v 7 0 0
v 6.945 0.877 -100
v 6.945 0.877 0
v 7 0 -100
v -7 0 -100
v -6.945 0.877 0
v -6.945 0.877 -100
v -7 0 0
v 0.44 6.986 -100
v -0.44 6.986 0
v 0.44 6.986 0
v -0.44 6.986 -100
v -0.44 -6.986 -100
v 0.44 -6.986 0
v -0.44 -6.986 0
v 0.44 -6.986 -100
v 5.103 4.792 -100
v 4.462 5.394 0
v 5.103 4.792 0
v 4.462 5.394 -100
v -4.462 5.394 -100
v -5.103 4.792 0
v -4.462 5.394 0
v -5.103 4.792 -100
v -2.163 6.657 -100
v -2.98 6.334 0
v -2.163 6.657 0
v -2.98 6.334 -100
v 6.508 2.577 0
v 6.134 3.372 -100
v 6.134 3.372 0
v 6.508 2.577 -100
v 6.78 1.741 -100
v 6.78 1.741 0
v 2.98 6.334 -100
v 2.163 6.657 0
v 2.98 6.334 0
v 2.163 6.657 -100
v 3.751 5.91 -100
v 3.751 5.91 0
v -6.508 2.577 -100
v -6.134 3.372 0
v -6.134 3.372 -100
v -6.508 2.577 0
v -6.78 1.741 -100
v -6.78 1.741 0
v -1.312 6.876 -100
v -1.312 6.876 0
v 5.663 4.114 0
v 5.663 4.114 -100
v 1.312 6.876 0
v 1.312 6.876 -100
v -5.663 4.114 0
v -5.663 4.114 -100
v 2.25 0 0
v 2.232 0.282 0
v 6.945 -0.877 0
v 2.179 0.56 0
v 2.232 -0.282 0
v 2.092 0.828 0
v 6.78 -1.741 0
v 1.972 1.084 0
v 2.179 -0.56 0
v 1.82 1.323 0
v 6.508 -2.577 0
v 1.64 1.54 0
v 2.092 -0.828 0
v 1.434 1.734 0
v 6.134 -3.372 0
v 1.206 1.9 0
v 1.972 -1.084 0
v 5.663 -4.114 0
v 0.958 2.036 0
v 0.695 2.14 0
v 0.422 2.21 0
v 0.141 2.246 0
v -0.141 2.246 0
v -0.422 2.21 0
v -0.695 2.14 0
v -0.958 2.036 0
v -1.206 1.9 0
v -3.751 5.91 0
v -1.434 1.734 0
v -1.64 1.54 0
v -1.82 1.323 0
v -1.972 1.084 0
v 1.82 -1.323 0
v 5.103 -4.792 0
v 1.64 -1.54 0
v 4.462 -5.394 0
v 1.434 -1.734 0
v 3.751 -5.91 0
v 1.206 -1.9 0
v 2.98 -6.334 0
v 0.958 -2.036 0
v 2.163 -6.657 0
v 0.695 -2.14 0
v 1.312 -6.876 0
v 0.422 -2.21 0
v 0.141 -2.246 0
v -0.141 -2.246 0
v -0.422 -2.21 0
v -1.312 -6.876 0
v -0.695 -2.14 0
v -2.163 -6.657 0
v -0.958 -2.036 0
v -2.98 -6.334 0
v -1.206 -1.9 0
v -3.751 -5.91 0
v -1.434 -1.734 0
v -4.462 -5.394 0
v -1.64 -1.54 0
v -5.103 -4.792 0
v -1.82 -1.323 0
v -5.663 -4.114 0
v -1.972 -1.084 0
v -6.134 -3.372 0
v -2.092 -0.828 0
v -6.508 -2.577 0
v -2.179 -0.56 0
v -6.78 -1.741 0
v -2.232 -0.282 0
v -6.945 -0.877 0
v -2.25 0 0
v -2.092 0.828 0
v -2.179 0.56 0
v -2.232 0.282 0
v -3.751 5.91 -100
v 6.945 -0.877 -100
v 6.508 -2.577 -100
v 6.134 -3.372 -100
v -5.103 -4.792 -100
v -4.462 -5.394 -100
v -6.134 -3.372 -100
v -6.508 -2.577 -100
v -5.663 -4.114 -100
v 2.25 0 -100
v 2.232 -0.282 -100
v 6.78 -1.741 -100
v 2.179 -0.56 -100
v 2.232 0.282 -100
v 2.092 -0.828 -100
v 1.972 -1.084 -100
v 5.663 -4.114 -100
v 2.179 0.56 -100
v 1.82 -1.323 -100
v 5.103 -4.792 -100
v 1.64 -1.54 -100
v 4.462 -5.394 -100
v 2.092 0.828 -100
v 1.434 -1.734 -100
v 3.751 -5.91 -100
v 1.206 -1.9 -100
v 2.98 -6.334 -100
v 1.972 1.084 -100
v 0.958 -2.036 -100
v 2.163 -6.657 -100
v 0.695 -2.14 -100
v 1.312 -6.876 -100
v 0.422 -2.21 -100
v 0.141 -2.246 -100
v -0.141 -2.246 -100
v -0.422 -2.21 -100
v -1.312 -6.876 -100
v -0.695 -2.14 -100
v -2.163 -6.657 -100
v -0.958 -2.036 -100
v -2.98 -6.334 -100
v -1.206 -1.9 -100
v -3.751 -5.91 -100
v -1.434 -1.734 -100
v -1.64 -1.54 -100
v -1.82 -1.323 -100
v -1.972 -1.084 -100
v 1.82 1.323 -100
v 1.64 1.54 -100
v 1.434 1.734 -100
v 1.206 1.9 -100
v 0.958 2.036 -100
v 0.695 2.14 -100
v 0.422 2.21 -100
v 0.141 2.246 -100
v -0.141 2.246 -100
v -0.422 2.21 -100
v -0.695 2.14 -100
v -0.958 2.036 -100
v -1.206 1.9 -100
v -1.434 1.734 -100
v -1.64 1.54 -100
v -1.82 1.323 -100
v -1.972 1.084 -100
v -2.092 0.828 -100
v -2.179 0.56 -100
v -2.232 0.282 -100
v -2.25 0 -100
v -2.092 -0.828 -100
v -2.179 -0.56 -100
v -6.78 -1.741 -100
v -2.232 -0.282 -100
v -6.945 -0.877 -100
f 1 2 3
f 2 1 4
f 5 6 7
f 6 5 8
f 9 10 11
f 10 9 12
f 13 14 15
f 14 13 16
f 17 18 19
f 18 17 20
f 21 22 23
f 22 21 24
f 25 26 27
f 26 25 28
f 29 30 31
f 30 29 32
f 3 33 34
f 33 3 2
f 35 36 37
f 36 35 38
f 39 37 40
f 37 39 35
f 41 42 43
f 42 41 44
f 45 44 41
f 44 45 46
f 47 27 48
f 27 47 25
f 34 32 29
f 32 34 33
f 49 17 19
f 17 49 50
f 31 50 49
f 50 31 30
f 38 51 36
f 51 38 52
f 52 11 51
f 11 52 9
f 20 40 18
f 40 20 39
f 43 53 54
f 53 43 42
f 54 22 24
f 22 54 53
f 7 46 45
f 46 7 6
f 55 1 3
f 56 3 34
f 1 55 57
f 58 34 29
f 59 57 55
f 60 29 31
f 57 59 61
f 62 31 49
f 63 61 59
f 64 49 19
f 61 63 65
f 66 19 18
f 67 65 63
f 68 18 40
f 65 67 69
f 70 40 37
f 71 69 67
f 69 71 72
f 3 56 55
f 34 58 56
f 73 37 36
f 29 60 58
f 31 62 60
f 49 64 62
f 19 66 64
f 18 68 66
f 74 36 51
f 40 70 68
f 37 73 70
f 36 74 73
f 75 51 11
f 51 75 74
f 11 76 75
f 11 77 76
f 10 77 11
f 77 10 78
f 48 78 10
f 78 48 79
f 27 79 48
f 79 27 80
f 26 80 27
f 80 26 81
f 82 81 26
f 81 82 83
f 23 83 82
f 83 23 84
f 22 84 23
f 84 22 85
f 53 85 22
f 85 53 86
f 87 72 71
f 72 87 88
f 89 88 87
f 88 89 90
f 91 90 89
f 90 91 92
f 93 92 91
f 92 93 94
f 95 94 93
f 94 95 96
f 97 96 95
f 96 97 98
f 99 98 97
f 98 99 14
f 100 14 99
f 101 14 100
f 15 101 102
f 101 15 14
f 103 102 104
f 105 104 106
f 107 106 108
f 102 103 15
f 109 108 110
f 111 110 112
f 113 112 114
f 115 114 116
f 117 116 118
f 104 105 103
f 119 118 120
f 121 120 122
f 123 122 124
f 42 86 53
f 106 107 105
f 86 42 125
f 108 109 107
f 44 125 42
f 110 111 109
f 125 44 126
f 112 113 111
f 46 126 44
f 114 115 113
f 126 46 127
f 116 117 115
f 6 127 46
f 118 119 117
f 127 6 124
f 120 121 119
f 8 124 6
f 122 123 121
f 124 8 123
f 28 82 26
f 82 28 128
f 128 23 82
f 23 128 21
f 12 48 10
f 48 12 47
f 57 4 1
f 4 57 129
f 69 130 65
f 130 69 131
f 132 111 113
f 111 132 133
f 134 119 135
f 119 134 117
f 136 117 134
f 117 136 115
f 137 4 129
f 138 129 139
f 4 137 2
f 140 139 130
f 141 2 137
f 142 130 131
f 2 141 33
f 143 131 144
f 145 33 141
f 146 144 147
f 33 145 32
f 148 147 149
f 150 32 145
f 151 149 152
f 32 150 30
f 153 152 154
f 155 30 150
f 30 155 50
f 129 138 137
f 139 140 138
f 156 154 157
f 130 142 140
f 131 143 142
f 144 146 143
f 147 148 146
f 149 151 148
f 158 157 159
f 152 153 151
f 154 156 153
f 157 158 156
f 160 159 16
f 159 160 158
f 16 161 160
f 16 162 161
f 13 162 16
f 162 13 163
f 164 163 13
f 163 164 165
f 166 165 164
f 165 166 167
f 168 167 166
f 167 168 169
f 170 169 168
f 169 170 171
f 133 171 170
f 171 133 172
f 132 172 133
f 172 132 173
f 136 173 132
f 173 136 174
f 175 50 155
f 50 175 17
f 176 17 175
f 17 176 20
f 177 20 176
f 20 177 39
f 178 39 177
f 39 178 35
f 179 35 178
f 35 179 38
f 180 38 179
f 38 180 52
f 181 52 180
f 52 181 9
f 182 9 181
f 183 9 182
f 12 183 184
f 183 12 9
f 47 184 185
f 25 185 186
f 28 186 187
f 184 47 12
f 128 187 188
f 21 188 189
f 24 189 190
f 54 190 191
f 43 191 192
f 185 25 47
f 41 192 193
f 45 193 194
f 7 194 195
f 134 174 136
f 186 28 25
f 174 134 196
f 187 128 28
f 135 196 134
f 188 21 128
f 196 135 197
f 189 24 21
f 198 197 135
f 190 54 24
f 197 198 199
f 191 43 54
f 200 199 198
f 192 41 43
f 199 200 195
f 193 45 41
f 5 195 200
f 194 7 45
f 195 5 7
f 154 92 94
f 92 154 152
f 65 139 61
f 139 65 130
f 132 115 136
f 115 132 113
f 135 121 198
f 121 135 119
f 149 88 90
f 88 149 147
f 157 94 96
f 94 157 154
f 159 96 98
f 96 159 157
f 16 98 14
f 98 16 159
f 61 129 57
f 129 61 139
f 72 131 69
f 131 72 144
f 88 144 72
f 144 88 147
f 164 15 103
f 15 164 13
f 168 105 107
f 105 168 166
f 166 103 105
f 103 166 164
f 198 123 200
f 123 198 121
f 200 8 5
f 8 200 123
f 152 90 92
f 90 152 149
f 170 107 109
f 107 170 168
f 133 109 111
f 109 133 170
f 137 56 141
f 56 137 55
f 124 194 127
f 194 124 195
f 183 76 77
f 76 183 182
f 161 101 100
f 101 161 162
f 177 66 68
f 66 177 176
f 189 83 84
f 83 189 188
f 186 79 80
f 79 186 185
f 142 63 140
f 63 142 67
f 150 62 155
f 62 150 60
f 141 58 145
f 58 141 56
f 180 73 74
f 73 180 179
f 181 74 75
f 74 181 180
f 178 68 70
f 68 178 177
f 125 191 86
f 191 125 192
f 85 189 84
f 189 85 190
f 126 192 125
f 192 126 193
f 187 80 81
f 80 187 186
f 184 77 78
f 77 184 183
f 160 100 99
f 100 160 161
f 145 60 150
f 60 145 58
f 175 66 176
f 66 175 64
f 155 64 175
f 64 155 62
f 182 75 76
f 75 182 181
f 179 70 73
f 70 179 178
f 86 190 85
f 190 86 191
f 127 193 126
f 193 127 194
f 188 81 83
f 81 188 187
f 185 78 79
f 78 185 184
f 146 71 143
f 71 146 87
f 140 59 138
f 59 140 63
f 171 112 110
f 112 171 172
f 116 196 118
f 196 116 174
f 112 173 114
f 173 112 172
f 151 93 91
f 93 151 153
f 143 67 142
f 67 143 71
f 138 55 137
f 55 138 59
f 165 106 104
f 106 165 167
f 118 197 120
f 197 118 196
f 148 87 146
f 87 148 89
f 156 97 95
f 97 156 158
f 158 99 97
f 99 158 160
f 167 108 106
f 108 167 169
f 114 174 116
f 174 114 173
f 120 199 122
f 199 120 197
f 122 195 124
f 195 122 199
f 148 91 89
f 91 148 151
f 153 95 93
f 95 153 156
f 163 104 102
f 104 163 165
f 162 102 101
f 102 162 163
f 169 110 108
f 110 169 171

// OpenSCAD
$fn = 50;


difference() {
	union() {
		translate(v = [0, 0, -100.0000000000]) {
			cylinder(h = 100, r = 7.0000000000);
		}
	}
	union() {
		#translate(v = [0, 0, -100]) {
			cylinder(h = 100, r = 2.2500000000);
		}
	}
}
